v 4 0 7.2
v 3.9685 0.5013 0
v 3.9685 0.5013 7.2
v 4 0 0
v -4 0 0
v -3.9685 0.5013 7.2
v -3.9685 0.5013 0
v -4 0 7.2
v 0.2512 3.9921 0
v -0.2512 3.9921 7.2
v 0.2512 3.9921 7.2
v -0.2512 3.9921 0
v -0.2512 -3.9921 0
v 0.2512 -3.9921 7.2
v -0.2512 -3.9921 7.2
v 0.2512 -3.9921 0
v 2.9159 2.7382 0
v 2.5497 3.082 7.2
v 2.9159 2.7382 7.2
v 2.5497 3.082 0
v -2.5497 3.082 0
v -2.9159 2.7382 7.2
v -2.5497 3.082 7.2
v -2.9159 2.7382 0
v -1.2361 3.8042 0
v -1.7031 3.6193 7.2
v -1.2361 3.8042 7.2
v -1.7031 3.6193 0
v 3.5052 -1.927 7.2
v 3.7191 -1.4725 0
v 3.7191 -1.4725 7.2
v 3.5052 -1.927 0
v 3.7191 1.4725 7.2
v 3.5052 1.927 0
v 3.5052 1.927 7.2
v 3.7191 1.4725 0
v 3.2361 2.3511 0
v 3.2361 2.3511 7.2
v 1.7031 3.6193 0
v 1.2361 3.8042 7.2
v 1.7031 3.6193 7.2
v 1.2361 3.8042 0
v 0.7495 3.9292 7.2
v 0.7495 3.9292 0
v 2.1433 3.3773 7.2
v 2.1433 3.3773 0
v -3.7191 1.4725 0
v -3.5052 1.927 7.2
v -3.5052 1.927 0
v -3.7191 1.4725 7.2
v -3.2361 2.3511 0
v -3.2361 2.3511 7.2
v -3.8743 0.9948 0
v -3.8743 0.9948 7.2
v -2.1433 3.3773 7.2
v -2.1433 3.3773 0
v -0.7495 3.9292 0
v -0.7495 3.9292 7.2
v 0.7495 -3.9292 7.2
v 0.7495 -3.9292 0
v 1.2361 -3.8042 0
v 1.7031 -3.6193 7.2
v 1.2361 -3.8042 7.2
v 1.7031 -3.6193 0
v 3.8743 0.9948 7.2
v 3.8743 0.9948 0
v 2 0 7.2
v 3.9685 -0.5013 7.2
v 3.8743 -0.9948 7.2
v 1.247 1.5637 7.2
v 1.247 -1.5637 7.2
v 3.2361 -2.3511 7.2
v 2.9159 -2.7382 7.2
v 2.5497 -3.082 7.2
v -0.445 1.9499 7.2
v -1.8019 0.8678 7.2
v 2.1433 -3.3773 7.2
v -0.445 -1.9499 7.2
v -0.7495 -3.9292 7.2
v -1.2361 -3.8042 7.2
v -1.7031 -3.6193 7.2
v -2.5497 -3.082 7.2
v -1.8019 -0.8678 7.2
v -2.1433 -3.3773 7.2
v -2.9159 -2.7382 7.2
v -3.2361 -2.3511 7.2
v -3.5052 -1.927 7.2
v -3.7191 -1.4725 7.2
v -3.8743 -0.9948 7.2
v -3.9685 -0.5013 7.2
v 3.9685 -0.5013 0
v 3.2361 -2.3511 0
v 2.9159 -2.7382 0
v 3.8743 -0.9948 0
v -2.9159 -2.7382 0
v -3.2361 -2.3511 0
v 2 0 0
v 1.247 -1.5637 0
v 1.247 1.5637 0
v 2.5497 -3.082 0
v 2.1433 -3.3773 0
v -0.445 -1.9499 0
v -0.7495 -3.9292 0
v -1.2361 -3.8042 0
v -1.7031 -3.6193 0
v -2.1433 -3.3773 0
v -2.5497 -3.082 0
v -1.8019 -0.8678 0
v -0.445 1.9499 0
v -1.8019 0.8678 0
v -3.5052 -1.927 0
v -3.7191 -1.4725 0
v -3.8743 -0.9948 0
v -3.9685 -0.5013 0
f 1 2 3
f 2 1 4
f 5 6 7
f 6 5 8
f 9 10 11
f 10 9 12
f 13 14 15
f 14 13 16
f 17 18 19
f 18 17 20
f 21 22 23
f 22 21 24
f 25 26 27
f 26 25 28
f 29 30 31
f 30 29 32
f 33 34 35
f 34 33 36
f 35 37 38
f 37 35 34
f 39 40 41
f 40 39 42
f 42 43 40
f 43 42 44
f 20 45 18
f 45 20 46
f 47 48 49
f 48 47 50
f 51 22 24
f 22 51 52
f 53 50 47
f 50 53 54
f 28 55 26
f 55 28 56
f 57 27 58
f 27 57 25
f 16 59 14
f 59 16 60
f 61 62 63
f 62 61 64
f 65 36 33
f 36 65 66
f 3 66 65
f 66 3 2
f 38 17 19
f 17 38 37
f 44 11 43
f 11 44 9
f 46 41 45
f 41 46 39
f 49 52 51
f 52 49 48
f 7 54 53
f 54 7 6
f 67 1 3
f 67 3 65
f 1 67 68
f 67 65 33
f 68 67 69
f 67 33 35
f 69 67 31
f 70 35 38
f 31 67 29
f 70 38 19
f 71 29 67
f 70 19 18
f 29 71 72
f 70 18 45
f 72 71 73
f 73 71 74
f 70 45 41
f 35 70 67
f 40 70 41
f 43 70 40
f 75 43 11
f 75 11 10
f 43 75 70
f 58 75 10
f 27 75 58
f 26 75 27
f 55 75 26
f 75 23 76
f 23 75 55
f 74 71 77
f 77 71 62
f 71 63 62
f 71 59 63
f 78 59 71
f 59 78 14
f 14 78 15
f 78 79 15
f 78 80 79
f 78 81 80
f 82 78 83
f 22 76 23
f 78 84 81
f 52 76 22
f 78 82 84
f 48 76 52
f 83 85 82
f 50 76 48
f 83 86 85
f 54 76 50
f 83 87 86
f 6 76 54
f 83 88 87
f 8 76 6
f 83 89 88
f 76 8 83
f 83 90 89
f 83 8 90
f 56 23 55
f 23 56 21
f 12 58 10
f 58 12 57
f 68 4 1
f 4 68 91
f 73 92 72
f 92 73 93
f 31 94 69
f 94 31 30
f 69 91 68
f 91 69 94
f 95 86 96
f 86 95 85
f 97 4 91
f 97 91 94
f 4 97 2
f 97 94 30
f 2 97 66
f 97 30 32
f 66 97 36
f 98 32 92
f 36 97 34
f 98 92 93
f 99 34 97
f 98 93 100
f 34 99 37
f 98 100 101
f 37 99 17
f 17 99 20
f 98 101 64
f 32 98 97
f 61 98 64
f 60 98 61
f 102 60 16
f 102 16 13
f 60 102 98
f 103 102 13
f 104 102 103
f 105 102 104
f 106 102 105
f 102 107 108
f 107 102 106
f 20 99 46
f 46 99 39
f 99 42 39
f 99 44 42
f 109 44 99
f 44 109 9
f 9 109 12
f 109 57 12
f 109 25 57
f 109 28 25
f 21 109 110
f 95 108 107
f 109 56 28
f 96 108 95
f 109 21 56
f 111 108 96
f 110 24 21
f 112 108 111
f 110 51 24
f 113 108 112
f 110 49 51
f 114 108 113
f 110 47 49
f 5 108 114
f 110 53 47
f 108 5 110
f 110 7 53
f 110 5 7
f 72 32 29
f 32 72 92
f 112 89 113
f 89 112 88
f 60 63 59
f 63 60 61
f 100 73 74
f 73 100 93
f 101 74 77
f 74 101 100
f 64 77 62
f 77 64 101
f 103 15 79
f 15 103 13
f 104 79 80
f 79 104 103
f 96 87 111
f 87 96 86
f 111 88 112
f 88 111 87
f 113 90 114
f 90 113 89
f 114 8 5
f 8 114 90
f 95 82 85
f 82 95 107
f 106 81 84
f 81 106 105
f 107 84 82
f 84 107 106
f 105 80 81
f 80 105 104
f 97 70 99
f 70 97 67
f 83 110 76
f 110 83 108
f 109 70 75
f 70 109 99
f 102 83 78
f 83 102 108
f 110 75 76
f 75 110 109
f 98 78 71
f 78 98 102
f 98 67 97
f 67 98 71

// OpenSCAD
difference() {
	cylinder(d=8,h=7.2,$fn=50);
	translate([0,0,-0.1])
		cylinder(d=4,h=7.4);
}
